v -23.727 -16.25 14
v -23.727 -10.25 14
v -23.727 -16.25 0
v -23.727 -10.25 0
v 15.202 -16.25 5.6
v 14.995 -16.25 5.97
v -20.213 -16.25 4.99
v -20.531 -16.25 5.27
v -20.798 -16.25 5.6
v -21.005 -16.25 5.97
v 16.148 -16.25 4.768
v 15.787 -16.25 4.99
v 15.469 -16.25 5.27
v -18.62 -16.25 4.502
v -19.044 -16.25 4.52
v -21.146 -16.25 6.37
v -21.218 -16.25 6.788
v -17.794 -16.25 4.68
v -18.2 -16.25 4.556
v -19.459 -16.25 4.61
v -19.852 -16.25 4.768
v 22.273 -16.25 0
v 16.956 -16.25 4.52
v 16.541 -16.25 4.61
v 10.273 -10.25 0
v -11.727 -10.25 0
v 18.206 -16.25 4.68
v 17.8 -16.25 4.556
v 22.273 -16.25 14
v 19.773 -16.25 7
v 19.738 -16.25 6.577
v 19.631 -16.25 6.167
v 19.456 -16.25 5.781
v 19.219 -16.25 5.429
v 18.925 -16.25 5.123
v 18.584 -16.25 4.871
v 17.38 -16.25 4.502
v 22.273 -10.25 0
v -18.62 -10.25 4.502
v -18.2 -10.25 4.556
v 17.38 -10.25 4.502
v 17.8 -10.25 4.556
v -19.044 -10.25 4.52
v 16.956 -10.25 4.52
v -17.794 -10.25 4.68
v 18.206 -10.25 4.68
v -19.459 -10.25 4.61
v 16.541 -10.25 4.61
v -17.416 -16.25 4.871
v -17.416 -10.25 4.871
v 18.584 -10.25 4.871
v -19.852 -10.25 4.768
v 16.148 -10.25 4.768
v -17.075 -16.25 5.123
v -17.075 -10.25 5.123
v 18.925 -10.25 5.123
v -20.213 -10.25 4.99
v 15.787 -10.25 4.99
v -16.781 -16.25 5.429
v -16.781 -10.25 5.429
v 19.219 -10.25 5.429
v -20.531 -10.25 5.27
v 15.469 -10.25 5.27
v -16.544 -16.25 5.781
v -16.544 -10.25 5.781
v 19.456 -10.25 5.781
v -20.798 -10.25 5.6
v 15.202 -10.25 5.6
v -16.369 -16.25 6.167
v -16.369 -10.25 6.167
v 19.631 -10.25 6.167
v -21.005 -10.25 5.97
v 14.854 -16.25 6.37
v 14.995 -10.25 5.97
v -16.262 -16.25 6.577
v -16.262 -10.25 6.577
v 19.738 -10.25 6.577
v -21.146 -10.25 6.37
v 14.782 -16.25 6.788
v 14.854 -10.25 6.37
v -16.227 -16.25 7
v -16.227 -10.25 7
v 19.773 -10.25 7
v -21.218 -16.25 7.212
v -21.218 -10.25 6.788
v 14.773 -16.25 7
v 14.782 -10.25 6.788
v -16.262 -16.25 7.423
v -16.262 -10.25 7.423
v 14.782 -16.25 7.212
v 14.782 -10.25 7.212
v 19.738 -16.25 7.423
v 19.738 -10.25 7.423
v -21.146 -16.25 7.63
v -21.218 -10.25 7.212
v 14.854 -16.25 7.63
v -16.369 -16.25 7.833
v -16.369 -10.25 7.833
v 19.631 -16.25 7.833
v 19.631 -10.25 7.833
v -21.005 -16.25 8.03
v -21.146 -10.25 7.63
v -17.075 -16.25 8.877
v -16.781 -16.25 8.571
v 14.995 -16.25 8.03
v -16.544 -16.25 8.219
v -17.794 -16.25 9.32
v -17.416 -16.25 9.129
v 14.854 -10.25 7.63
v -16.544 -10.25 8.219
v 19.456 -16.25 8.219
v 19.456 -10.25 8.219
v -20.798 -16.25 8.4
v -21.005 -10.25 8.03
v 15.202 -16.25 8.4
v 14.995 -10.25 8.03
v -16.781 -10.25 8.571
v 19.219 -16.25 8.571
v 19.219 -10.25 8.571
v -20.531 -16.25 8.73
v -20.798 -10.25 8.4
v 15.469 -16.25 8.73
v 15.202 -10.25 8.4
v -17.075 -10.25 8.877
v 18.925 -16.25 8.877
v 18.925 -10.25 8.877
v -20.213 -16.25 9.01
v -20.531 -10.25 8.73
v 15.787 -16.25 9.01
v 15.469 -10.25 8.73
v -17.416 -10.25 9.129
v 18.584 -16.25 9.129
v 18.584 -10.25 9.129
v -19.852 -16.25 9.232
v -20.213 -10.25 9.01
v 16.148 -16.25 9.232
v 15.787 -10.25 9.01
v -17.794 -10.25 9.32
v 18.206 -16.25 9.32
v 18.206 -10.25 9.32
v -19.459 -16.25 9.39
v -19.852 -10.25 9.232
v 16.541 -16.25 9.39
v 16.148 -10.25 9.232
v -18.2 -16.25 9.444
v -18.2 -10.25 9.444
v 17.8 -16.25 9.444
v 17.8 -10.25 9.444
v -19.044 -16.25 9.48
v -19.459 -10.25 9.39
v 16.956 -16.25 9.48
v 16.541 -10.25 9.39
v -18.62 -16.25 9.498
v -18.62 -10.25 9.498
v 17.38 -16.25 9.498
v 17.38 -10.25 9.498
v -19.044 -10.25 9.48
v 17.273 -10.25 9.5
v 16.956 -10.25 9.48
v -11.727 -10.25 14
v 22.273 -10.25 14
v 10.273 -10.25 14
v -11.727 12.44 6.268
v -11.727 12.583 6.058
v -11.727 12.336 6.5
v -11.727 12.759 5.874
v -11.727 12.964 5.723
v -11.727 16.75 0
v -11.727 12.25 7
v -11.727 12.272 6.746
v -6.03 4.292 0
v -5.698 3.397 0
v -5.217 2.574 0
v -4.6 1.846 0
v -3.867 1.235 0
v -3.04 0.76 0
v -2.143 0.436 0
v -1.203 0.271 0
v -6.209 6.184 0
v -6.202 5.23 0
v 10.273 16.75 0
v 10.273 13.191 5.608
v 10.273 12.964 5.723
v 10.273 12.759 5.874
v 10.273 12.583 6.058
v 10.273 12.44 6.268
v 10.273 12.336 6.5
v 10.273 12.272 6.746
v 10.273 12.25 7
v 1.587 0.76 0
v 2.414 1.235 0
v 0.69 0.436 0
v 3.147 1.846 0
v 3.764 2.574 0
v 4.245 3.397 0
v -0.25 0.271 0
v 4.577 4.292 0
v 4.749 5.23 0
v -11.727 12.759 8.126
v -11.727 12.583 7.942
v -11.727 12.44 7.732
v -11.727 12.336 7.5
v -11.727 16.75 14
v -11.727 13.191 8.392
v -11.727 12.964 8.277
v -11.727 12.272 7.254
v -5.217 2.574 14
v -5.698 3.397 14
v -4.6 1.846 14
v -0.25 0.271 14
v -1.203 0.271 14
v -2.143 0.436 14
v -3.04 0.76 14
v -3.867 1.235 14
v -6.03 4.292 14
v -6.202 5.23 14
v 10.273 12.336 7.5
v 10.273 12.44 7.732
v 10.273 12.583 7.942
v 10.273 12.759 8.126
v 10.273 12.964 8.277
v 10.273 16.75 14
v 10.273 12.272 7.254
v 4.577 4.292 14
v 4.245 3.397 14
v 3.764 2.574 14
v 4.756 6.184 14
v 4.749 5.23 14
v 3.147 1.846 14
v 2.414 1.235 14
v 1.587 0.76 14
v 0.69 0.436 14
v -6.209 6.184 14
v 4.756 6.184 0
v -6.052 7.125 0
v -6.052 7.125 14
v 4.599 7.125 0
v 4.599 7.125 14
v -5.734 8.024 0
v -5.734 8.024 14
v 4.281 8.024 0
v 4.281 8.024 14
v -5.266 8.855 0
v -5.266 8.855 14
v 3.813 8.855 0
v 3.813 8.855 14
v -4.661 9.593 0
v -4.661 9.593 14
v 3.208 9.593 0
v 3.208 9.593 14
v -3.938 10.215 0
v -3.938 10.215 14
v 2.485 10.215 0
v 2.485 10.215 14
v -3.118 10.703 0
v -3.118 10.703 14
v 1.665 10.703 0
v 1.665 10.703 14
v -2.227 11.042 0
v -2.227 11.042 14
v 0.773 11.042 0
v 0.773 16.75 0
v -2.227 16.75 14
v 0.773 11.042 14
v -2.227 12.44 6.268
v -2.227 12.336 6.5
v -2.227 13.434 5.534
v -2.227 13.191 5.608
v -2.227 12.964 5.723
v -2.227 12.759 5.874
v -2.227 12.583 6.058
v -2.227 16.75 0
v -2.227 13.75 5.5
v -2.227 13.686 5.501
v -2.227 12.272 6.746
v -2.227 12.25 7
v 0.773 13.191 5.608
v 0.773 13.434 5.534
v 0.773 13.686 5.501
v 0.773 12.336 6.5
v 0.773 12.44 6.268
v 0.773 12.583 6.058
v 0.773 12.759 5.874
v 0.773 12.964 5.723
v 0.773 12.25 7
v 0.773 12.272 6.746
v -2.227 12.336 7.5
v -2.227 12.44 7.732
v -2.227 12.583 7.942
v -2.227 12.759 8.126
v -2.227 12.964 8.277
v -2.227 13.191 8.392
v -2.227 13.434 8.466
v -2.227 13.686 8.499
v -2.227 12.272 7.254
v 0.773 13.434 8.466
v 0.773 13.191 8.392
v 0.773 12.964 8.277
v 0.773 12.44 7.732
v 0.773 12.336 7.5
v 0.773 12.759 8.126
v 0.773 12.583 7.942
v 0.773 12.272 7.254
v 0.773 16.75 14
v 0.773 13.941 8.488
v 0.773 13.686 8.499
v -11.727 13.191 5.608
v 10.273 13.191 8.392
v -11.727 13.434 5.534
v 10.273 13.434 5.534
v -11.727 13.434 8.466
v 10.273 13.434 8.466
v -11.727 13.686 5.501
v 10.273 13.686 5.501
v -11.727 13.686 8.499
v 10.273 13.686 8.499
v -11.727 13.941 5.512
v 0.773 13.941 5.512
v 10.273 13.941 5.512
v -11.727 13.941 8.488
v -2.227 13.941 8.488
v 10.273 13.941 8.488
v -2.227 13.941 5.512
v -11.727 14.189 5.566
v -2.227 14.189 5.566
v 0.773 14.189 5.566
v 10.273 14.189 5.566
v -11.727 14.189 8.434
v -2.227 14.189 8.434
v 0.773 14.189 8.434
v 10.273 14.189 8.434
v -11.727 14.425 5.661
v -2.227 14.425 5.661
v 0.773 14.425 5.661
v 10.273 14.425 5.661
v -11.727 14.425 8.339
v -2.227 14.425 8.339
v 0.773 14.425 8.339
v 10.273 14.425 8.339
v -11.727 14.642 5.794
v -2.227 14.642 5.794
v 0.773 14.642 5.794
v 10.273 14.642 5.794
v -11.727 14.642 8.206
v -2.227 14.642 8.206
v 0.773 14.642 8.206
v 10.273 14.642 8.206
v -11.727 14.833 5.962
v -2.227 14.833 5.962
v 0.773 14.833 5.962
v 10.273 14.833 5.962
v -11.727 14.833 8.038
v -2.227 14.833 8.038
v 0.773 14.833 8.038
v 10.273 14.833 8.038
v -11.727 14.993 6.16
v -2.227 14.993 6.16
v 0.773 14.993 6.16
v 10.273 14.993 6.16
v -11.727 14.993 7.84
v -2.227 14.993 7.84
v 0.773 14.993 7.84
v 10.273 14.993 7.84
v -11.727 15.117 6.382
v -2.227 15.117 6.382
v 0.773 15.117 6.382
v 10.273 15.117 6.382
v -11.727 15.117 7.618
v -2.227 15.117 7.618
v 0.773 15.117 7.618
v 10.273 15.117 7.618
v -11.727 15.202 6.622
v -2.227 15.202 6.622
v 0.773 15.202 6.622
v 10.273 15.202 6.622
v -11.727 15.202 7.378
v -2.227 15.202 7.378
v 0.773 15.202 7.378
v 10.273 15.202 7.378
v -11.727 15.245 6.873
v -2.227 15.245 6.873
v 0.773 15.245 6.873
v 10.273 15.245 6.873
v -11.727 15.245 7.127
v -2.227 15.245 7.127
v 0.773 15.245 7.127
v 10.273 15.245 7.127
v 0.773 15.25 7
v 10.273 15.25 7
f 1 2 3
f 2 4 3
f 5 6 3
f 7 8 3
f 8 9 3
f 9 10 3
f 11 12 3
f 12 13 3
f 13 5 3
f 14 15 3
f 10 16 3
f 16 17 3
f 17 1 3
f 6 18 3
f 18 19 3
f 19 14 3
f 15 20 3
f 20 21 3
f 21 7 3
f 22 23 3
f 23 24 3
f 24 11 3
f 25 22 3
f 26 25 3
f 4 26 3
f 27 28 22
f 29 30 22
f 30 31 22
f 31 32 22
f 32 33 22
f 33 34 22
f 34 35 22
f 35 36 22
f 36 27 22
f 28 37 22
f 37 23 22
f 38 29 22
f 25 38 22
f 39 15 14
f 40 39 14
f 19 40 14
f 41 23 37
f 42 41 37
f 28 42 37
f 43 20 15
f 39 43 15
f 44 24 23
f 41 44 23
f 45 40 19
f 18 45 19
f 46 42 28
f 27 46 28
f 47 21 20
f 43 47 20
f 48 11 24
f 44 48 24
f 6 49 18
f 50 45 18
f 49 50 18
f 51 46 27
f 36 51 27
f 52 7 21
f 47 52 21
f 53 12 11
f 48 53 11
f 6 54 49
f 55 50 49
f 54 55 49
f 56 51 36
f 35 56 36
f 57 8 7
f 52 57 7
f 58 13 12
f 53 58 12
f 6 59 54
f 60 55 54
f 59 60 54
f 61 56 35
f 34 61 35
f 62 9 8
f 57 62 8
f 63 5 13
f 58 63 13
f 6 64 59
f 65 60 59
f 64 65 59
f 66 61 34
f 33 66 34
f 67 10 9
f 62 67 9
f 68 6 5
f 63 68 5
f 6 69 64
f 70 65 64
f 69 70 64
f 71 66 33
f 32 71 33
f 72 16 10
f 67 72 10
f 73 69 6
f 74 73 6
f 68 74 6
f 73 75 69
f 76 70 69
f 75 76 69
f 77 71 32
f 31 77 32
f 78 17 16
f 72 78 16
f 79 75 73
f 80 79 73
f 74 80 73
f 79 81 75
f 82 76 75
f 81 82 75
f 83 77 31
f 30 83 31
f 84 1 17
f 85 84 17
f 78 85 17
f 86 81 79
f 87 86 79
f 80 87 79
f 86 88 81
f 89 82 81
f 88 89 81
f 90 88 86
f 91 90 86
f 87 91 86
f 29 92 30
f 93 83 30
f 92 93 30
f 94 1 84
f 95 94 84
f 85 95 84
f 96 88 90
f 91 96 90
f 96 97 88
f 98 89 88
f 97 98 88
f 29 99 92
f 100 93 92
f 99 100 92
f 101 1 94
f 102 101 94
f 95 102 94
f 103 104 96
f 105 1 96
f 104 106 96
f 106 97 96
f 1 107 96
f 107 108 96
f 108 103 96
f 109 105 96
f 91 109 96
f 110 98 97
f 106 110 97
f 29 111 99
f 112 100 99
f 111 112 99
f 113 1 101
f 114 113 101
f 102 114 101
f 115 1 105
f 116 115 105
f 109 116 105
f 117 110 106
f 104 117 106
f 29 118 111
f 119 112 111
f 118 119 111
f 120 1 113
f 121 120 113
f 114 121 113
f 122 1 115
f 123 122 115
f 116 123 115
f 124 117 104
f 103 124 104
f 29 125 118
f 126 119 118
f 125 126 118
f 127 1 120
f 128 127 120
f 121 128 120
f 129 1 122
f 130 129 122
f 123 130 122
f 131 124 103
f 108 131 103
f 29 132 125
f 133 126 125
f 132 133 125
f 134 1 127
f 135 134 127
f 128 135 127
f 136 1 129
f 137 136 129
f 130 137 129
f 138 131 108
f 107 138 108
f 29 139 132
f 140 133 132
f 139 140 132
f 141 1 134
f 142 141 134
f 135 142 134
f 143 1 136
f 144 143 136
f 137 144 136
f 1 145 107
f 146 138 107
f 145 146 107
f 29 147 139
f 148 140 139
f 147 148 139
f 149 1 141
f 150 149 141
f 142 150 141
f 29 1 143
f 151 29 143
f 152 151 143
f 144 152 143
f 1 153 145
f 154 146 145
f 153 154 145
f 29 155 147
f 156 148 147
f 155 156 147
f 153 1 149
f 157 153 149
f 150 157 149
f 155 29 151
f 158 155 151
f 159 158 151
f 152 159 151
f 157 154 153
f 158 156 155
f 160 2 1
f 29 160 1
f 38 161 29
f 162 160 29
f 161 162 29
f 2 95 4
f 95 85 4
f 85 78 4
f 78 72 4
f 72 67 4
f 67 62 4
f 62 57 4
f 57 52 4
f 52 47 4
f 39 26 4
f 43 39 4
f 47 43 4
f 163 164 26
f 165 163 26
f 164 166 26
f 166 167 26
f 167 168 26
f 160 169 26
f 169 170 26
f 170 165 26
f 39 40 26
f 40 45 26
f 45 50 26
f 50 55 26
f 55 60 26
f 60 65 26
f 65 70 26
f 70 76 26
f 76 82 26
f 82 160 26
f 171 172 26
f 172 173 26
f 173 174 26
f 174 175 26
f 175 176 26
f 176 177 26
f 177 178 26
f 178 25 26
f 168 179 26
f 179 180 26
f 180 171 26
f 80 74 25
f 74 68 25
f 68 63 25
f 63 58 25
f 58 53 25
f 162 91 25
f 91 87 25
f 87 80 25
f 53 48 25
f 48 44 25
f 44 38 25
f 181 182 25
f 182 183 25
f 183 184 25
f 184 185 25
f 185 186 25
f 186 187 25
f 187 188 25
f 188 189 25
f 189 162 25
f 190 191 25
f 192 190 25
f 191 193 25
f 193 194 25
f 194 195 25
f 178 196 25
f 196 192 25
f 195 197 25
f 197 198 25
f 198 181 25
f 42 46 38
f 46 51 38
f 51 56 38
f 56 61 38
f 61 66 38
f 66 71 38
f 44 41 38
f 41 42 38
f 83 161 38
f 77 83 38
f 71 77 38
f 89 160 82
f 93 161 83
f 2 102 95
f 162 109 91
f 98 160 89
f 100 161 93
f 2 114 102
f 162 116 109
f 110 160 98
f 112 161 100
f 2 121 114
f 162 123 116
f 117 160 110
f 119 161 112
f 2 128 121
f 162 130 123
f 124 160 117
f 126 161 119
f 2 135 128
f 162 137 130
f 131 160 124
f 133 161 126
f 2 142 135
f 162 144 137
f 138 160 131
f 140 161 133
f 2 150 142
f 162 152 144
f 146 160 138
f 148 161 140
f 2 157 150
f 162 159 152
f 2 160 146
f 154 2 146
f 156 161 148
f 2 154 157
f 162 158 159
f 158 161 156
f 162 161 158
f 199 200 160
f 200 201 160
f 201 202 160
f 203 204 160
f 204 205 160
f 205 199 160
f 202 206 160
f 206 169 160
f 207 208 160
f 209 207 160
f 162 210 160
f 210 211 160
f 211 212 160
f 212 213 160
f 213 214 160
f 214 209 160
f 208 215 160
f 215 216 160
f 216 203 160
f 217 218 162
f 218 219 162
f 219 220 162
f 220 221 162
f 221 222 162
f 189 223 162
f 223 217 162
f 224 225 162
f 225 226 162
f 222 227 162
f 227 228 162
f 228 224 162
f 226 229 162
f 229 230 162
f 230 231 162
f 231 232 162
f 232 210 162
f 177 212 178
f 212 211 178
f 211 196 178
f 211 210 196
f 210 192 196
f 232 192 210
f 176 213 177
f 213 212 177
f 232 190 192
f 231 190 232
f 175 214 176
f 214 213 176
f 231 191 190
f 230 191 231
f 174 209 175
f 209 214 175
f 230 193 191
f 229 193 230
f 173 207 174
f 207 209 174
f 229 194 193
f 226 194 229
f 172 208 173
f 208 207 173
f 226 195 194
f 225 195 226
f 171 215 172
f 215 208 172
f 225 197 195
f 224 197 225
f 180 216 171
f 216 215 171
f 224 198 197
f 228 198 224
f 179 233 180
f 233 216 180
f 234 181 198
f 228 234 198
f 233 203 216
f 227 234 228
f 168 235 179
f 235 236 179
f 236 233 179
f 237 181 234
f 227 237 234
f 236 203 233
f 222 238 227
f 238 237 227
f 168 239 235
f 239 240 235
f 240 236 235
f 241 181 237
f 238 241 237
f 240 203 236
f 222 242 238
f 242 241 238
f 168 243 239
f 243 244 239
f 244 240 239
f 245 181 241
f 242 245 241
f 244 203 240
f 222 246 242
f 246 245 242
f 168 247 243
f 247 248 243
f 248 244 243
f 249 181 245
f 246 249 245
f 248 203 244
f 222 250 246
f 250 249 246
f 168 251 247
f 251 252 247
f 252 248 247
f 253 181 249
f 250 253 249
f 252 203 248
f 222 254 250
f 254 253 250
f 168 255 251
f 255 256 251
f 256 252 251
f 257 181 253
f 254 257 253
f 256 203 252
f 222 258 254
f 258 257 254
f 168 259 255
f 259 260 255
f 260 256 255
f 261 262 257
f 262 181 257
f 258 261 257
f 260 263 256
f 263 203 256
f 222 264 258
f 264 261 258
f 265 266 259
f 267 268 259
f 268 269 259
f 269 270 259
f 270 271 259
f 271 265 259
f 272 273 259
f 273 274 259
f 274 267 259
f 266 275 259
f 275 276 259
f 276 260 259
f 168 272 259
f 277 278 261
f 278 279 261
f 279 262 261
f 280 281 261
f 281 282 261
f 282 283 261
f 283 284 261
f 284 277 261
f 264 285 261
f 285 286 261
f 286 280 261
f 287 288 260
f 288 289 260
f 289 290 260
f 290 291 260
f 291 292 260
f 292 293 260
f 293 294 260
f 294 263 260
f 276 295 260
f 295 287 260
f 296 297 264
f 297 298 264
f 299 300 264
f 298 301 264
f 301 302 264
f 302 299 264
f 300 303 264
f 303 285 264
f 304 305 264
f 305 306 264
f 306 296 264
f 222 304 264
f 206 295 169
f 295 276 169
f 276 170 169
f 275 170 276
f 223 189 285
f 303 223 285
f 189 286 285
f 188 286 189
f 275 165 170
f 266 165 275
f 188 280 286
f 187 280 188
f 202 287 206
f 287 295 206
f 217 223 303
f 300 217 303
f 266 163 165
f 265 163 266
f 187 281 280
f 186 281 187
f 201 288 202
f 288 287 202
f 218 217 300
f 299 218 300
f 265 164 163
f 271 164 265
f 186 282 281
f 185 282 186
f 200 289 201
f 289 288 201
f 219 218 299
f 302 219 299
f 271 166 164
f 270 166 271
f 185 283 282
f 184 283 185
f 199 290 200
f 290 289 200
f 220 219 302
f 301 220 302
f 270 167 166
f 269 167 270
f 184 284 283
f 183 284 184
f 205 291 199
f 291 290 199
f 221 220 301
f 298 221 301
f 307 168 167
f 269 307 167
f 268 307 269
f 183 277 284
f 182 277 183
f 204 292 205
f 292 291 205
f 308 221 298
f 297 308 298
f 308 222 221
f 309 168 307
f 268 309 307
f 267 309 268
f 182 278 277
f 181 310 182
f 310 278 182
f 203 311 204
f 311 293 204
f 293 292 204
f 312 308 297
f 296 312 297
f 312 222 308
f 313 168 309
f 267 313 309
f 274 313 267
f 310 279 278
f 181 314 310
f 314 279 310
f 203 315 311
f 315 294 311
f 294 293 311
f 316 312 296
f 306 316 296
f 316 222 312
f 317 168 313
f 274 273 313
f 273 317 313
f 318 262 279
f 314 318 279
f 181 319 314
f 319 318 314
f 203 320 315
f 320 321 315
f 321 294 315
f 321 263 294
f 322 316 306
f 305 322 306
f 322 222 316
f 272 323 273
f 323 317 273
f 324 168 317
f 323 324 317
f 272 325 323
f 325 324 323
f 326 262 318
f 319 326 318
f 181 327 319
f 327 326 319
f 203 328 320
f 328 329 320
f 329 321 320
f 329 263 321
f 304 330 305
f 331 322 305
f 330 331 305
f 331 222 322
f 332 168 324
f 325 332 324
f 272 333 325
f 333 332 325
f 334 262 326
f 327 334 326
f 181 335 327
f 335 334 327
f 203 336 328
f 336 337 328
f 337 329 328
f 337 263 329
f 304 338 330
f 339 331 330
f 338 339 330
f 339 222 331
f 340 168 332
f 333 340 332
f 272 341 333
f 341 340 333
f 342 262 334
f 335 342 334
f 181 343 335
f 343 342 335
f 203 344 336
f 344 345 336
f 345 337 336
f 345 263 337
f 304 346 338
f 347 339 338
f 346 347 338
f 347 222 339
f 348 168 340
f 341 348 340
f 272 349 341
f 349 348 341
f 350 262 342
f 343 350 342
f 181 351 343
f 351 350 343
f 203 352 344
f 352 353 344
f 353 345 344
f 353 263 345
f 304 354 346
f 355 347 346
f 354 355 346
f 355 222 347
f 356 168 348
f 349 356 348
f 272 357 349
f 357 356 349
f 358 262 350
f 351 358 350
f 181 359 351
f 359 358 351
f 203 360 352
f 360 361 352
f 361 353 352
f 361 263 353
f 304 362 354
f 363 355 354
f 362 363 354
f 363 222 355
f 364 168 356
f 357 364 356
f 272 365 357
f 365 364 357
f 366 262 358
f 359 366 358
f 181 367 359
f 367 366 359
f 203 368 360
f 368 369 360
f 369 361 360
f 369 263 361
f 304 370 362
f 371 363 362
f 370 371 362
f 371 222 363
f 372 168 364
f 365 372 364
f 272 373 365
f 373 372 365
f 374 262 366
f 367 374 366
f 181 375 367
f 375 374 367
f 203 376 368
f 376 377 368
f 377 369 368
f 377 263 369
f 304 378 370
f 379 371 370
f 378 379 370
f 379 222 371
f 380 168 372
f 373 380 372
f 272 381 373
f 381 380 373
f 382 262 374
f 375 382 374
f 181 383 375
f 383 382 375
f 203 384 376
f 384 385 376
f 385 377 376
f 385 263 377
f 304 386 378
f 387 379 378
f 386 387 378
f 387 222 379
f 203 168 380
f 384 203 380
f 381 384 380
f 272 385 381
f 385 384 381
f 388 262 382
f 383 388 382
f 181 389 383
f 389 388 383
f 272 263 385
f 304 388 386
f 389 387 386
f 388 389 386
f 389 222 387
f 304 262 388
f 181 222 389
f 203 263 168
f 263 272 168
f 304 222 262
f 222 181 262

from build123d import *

# Parameters (mm, degrees)
SKETCH_1_W          = 12
SKETCH_1_H          = 6
EXTRUDE_1_DEPTH     = 14
SKETCH_2_R          = 2.5
CUT_EXTRUDE_1_DEPTH = 14
SKETCH_4_R          = 1.5
CUT_EXTRUDE_2_DEPTH = 28
SKETCH_5_R          = 5.5
CUT_EXTRUDE_3_DEPTH = 22


with BuildPart() as part:
    # 草图1 → 凸台-拉伸1 (new body)
    with BuildSketch(Plane.XY):
        with BuildLine():
            Line((-2.226515598, 16.75), (-11.726515598, 16.75))
            Line((-11.726515598, 16.75), (-11.726515598, -10.25))
            Line((-11.726515598, -10.25), (-11.726515598, -16.25))
            Line((-11.726515598, -16.25), (10.273484402, -16.25))
            Line((10.273484402, -16.25), (10.273484402, -10.25))
            Line((10.273484402, -10.25), (10.273484402, 16.75))
            Line((10.273484402, 16.75), (0.773484402, 16.75))
            Line((0.773484402, 16.75), (0.773484402, 9.992640687))
            ThreePointArc((0.773484402, 9.992640687), (2.947719016, 8.348076211), (3.773484402, 5.75))
            ThreePointArc((3.773484402, 5.75), (-3.324591809, 2.075765386), (-2.226515598, 9.992640687))
            Line((-2.226515598, 9.992640687), (-2.226515598, 16.75))
        make_face()
        with Locations((16.273484402, -13.25)):
            Rectangle(SKETCH_1_W, SKETCH_1_H)
        with Locations((-17.726515598, -13.25)):
            Rectangle(SKETCH_1_W, SKETCH_1_H)
    extrude(amount=EXTRUDE_1_DEPTH)

    # 草图2 → 切除-拉伸1 (cut)
    with BuildSketch(Plane(origin=(0, -16.25, 0), x_dir=(-1, 0, 0), z_dir=(0, -1, 0))):
        with Locations(Location((18.726515598, -7, 0), (0, 0, 180))):
            Circle(SKETCH_2_R)
        with Locations(Location((-17.273484402, -7, 0), (0, 0, 270))):
            Circle(SKETCH_2_R)
    extrude(amount=-CUT_EXTRUDE_1_DEPTH, mode=Mode.SUBTRACT)

    # 草图4 → 切除-拉伸2 (cut)
    with BuildSketch(Plane.ZY.offset(11.726515598)):
        with Locations(Location((7, 13.75, 0), (0, 0, 90))):
            Circle(SKETCH_4_R)
    extrude(amount=-CUT_EXTRUDE_2_DEPTH, mode=Mode.SUBTRACT)

    # 草图5 → 切除-拉伸3 (cut)
    with BuildSketch(Plane.XY.offset(14)):
        with Locations((-0.726515598, 5.75)):
            Circle(SKETCH_5_R)
    extrude(amount=-CUT_EXTRUDE_3_DEPTH, mode=Mode.SUBTRACT)


solid = part.part
